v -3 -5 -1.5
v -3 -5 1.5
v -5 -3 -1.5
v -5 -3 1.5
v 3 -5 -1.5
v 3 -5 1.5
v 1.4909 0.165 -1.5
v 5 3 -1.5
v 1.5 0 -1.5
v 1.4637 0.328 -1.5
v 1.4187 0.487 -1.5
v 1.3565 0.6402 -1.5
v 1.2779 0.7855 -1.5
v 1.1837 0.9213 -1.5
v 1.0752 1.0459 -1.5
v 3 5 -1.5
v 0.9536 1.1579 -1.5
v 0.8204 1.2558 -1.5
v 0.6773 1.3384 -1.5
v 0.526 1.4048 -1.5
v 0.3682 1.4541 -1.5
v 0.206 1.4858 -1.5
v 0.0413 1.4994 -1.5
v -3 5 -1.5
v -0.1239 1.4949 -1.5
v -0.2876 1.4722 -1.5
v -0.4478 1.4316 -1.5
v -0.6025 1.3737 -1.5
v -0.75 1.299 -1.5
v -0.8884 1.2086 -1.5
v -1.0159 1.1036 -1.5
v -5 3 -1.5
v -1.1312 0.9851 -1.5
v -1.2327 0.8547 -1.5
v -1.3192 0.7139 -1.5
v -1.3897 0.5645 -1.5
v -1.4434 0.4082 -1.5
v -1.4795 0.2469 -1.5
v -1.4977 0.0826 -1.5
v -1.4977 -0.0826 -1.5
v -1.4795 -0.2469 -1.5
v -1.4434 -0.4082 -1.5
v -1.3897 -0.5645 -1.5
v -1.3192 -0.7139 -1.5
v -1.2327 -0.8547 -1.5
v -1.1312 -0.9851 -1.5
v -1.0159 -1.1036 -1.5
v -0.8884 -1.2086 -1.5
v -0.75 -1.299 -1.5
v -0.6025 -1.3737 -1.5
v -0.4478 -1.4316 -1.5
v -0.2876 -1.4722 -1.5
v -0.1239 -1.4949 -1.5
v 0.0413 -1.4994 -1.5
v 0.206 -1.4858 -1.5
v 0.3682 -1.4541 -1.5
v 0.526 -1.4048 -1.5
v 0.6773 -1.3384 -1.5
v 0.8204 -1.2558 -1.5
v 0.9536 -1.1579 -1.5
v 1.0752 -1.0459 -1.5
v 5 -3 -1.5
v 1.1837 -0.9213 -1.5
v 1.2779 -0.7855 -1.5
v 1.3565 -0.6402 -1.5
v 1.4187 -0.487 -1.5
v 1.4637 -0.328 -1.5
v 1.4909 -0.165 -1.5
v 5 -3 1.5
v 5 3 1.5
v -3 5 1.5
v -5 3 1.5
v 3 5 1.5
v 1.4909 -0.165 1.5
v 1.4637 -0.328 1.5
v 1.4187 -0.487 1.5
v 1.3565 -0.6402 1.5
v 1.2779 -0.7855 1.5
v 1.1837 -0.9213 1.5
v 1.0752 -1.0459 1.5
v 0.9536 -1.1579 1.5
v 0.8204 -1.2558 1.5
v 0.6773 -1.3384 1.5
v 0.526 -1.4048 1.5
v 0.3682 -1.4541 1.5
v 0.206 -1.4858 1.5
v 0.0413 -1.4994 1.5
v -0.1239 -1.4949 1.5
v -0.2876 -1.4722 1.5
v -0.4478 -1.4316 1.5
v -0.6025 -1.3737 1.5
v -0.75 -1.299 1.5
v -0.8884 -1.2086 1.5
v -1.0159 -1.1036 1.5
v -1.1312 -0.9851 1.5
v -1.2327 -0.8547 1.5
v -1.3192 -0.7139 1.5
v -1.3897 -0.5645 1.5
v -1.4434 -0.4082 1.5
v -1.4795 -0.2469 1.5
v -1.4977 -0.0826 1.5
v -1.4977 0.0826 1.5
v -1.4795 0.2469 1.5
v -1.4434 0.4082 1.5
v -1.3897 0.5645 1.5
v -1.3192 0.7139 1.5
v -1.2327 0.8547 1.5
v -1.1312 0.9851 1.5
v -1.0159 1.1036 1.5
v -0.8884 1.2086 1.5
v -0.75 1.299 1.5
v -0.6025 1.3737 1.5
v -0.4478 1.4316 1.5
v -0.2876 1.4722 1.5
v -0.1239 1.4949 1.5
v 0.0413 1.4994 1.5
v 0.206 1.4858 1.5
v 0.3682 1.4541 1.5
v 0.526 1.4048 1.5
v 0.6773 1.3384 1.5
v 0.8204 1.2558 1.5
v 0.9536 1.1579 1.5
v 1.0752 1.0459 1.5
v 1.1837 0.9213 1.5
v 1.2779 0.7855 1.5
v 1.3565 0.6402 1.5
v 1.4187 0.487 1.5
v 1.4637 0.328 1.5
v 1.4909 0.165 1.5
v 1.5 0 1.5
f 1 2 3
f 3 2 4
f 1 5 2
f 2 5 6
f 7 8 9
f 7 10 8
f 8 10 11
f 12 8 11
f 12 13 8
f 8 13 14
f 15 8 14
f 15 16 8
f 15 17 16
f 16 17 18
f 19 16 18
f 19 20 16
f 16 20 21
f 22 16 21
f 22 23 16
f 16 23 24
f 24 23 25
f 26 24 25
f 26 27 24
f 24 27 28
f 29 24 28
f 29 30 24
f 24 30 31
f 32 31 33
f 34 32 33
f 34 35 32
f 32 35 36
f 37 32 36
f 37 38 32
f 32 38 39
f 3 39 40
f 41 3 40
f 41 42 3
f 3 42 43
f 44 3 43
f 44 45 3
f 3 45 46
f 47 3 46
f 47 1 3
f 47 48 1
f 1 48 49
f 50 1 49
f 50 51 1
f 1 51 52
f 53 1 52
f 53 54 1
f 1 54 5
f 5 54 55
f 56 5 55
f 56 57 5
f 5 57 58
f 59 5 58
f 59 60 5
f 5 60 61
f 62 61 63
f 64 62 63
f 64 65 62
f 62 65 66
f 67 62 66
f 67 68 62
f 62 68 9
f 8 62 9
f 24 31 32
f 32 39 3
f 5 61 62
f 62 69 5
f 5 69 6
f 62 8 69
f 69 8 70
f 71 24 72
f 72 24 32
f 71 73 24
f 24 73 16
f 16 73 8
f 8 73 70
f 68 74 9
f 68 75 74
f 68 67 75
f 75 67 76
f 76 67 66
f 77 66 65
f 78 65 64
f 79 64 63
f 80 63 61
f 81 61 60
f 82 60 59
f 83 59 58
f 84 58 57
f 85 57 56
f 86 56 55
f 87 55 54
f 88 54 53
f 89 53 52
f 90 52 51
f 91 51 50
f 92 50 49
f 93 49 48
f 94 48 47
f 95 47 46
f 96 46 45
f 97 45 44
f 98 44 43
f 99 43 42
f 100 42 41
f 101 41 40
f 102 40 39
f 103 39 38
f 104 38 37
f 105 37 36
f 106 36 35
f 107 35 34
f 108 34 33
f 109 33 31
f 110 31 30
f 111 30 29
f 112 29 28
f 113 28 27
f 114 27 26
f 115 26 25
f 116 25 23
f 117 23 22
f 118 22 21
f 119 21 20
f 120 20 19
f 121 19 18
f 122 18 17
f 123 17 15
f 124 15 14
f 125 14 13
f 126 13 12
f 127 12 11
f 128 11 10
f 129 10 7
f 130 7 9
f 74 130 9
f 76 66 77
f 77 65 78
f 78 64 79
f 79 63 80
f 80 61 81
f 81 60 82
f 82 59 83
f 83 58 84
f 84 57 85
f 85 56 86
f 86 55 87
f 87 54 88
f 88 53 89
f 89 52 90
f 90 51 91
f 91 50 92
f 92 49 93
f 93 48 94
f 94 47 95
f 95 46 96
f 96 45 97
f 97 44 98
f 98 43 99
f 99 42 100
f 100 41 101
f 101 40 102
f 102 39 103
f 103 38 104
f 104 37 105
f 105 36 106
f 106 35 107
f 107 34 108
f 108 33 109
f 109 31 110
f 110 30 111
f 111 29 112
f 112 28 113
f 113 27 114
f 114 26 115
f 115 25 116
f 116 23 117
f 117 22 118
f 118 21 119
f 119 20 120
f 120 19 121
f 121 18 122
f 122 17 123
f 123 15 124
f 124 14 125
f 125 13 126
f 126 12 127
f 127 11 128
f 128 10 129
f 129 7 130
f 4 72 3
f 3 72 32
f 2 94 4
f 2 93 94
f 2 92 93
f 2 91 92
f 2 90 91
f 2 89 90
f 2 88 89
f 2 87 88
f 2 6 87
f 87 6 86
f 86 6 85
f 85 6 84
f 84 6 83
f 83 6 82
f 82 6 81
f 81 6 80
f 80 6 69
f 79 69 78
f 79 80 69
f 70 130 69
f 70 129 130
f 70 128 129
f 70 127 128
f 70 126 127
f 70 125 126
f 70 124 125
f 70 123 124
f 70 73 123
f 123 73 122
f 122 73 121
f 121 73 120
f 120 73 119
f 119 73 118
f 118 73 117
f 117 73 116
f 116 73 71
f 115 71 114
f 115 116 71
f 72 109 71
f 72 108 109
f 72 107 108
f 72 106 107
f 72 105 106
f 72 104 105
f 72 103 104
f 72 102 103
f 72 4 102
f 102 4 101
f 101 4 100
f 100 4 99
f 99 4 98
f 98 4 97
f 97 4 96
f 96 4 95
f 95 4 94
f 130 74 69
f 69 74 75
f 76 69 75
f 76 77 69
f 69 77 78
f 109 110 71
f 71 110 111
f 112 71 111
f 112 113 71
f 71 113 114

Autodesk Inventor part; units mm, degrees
sketch "Skizze1" plane through (0, 0, 0) normal (0, 0, 1) x (1, 0, 0)
  line L0 (-5, 5) -> (5, 5)
  line L1 (5, 5) -> (5, -5)
  line L2 (5, -5) -> (-5, -5)
  line L3 (-5, -5) -> (-5, 5)
  line L4 (-7, 0) -> (7, 0) projected
  line L5 (0, 7) -> (0, -7) projected
  point P0 (0, 0)
  dimension "d0" = 10
  dimension "d1" = 10
extrude "Extrusion1" add sketch "Skizze1" along normal mid plane 3
sketch "Skizze2" plane through (0, 0, 1.5) normal (0, 0, 1) x (1, 0, 0)
  circle A0 centre (0, 0) radius 1.5
  dimension "d4" = 3
extrude "Extrusion2" cut sketch "Skizze2" against normal blind 3
thread "Gewinde1" size "M3x0.5" class "6H" standard "ANSI Metric M Profile" full length
chamfer "Fase1" distance 2 angle 45 4 edges at (5, 5, 0) (-5, 5, 0) (5, -5, 0) (-5, -5, 0)
properties part number "RadAxeVorneSicherung"
